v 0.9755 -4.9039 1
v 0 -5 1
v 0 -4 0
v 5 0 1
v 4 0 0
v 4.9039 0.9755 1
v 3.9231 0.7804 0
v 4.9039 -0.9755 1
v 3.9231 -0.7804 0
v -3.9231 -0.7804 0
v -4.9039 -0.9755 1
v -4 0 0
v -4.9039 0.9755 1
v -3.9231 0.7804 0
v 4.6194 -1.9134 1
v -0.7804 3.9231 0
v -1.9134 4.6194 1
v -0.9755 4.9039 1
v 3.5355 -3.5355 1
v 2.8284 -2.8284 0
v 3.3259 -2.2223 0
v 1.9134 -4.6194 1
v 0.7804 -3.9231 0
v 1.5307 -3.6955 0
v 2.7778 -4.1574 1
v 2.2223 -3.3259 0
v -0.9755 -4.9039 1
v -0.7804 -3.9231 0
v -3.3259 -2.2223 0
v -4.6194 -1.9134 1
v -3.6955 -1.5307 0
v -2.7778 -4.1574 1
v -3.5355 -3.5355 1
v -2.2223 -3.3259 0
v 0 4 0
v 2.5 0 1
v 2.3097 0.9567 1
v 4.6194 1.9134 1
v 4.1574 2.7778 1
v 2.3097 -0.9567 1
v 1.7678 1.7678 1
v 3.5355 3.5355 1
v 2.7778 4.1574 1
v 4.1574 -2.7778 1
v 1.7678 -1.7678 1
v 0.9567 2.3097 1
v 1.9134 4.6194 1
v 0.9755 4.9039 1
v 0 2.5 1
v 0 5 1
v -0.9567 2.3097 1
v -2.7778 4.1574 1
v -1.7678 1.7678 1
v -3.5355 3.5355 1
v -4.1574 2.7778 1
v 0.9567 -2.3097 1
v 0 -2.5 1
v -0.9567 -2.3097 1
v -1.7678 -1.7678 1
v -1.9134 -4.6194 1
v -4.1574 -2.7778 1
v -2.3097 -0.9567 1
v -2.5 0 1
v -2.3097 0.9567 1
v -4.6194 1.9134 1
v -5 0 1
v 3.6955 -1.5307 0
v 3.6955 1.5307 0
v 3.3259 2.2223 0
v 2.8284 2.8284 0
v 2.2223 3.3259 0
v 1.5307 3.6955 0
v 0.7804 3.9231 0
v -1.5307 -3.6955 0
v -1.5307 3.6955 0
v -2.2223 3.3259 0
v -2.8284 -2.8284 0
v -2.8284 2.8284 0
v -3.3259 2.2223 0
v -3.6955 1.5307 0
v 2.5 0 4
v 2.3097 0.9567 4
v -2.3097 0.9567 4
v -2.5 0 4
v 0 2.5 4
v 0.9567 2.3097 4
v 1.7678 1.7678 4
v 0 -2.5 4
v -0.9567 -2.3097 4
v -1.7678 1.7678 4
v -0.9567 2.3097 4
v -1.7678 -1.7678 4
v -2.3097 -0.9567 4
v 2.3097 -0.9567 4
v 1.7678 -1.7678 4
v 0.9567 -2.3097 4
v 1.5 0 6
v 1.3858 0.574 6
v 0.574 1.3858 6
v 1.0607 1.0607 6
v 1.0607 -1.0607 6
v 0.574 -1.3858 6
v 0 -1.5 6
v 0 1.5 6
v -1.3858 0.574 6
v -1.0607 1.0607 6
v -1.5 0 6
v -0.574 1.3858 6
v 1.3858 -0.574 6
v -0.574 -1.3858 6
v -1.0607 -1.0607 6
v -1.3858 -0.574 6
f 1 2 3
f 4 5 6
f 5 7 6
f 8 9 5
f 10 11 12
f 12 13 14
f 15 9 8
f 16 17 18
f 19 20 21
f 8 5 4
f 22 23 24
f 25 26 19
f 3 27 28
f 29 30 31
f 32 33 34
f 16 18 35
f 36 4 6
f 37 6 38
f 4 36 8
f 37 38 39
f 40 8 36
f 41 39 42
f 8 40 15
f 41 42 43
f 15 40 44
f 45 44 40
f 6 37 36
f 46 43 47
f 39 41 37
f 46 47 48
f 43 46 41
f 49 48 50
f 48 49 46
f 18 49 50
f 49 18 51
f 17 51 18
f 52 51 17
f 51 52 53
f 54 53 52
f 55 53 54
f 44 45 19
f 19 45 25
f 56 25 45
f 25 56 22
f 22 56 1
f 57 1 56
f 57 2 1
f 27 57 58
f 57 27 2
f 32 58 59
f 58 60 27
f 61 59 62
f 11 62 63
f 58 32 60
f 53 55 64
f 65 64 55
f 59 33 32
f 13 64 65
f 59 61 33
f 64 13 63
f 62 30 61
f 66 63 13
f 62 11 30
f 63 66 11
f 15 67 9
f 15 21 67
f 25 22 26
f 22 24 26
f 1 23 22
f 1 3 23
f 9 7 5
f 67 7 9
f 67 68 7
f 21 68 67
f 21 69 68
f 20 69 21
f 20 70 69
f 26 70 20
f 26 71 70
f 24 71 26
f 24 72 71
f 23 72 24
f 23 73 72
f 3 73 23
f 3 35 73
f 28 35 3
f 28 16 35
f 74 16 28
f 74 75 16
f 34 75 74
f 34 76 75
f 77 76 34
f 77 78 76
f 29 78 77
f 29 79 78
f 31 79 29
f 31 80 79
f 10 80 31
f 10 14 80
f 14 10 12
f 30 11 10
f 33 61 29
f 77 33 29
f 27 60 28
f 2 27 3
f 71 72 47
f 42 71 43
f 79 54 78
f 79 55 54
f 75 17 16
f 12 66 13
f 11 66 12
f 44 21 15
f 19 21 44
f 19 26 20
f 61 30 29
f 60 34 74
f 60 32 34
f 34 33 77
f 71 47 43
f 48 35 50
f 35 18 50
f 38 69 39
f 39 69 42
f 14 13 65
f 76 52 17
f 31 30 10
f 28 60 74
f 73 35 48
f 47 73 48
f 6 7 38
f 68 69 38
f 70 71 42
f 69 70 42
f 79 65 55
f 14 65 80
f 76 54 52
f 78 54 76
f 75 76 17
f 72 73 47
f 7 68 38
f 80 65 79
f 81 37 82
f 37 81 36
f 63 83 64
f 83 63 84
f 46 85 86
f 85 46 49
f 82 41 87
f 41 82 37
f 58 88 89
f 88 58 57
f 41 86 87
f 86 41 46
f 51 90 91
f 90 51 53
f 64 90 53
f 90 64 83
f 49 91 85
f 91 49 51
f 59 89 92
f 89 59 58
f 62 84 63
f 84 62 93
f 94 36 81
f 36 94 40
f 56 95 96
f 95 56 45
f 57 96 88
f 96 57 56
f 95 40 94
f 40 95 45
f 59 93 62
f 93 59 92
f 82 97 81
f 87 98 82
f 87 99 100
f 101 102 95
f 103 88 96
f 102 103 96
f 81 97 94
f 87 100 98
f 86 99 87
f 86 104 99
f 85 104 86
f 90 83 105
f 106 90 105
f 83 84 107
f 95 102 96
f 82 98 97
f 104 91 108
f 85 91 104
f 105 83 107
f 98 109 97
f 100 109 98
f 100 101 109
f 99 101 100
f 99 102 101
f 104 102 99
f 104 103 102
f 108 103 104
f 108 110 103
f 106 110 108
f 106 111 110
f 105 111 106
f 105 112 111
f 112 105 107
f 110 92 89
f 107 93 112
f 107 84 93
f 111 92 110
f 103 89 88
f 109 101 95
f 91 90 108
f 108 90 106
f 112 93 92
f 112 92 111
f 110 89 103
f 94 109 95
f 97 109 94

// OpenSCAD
$fs = 1;
$fa = 6;
cylinder(d1=8, d2=10, h=1, center=false);
cylinder(d=5, h=4, center=false);
translate([0,0,4]) cylinder(d1=5, d2=3, h=2, center=false);
